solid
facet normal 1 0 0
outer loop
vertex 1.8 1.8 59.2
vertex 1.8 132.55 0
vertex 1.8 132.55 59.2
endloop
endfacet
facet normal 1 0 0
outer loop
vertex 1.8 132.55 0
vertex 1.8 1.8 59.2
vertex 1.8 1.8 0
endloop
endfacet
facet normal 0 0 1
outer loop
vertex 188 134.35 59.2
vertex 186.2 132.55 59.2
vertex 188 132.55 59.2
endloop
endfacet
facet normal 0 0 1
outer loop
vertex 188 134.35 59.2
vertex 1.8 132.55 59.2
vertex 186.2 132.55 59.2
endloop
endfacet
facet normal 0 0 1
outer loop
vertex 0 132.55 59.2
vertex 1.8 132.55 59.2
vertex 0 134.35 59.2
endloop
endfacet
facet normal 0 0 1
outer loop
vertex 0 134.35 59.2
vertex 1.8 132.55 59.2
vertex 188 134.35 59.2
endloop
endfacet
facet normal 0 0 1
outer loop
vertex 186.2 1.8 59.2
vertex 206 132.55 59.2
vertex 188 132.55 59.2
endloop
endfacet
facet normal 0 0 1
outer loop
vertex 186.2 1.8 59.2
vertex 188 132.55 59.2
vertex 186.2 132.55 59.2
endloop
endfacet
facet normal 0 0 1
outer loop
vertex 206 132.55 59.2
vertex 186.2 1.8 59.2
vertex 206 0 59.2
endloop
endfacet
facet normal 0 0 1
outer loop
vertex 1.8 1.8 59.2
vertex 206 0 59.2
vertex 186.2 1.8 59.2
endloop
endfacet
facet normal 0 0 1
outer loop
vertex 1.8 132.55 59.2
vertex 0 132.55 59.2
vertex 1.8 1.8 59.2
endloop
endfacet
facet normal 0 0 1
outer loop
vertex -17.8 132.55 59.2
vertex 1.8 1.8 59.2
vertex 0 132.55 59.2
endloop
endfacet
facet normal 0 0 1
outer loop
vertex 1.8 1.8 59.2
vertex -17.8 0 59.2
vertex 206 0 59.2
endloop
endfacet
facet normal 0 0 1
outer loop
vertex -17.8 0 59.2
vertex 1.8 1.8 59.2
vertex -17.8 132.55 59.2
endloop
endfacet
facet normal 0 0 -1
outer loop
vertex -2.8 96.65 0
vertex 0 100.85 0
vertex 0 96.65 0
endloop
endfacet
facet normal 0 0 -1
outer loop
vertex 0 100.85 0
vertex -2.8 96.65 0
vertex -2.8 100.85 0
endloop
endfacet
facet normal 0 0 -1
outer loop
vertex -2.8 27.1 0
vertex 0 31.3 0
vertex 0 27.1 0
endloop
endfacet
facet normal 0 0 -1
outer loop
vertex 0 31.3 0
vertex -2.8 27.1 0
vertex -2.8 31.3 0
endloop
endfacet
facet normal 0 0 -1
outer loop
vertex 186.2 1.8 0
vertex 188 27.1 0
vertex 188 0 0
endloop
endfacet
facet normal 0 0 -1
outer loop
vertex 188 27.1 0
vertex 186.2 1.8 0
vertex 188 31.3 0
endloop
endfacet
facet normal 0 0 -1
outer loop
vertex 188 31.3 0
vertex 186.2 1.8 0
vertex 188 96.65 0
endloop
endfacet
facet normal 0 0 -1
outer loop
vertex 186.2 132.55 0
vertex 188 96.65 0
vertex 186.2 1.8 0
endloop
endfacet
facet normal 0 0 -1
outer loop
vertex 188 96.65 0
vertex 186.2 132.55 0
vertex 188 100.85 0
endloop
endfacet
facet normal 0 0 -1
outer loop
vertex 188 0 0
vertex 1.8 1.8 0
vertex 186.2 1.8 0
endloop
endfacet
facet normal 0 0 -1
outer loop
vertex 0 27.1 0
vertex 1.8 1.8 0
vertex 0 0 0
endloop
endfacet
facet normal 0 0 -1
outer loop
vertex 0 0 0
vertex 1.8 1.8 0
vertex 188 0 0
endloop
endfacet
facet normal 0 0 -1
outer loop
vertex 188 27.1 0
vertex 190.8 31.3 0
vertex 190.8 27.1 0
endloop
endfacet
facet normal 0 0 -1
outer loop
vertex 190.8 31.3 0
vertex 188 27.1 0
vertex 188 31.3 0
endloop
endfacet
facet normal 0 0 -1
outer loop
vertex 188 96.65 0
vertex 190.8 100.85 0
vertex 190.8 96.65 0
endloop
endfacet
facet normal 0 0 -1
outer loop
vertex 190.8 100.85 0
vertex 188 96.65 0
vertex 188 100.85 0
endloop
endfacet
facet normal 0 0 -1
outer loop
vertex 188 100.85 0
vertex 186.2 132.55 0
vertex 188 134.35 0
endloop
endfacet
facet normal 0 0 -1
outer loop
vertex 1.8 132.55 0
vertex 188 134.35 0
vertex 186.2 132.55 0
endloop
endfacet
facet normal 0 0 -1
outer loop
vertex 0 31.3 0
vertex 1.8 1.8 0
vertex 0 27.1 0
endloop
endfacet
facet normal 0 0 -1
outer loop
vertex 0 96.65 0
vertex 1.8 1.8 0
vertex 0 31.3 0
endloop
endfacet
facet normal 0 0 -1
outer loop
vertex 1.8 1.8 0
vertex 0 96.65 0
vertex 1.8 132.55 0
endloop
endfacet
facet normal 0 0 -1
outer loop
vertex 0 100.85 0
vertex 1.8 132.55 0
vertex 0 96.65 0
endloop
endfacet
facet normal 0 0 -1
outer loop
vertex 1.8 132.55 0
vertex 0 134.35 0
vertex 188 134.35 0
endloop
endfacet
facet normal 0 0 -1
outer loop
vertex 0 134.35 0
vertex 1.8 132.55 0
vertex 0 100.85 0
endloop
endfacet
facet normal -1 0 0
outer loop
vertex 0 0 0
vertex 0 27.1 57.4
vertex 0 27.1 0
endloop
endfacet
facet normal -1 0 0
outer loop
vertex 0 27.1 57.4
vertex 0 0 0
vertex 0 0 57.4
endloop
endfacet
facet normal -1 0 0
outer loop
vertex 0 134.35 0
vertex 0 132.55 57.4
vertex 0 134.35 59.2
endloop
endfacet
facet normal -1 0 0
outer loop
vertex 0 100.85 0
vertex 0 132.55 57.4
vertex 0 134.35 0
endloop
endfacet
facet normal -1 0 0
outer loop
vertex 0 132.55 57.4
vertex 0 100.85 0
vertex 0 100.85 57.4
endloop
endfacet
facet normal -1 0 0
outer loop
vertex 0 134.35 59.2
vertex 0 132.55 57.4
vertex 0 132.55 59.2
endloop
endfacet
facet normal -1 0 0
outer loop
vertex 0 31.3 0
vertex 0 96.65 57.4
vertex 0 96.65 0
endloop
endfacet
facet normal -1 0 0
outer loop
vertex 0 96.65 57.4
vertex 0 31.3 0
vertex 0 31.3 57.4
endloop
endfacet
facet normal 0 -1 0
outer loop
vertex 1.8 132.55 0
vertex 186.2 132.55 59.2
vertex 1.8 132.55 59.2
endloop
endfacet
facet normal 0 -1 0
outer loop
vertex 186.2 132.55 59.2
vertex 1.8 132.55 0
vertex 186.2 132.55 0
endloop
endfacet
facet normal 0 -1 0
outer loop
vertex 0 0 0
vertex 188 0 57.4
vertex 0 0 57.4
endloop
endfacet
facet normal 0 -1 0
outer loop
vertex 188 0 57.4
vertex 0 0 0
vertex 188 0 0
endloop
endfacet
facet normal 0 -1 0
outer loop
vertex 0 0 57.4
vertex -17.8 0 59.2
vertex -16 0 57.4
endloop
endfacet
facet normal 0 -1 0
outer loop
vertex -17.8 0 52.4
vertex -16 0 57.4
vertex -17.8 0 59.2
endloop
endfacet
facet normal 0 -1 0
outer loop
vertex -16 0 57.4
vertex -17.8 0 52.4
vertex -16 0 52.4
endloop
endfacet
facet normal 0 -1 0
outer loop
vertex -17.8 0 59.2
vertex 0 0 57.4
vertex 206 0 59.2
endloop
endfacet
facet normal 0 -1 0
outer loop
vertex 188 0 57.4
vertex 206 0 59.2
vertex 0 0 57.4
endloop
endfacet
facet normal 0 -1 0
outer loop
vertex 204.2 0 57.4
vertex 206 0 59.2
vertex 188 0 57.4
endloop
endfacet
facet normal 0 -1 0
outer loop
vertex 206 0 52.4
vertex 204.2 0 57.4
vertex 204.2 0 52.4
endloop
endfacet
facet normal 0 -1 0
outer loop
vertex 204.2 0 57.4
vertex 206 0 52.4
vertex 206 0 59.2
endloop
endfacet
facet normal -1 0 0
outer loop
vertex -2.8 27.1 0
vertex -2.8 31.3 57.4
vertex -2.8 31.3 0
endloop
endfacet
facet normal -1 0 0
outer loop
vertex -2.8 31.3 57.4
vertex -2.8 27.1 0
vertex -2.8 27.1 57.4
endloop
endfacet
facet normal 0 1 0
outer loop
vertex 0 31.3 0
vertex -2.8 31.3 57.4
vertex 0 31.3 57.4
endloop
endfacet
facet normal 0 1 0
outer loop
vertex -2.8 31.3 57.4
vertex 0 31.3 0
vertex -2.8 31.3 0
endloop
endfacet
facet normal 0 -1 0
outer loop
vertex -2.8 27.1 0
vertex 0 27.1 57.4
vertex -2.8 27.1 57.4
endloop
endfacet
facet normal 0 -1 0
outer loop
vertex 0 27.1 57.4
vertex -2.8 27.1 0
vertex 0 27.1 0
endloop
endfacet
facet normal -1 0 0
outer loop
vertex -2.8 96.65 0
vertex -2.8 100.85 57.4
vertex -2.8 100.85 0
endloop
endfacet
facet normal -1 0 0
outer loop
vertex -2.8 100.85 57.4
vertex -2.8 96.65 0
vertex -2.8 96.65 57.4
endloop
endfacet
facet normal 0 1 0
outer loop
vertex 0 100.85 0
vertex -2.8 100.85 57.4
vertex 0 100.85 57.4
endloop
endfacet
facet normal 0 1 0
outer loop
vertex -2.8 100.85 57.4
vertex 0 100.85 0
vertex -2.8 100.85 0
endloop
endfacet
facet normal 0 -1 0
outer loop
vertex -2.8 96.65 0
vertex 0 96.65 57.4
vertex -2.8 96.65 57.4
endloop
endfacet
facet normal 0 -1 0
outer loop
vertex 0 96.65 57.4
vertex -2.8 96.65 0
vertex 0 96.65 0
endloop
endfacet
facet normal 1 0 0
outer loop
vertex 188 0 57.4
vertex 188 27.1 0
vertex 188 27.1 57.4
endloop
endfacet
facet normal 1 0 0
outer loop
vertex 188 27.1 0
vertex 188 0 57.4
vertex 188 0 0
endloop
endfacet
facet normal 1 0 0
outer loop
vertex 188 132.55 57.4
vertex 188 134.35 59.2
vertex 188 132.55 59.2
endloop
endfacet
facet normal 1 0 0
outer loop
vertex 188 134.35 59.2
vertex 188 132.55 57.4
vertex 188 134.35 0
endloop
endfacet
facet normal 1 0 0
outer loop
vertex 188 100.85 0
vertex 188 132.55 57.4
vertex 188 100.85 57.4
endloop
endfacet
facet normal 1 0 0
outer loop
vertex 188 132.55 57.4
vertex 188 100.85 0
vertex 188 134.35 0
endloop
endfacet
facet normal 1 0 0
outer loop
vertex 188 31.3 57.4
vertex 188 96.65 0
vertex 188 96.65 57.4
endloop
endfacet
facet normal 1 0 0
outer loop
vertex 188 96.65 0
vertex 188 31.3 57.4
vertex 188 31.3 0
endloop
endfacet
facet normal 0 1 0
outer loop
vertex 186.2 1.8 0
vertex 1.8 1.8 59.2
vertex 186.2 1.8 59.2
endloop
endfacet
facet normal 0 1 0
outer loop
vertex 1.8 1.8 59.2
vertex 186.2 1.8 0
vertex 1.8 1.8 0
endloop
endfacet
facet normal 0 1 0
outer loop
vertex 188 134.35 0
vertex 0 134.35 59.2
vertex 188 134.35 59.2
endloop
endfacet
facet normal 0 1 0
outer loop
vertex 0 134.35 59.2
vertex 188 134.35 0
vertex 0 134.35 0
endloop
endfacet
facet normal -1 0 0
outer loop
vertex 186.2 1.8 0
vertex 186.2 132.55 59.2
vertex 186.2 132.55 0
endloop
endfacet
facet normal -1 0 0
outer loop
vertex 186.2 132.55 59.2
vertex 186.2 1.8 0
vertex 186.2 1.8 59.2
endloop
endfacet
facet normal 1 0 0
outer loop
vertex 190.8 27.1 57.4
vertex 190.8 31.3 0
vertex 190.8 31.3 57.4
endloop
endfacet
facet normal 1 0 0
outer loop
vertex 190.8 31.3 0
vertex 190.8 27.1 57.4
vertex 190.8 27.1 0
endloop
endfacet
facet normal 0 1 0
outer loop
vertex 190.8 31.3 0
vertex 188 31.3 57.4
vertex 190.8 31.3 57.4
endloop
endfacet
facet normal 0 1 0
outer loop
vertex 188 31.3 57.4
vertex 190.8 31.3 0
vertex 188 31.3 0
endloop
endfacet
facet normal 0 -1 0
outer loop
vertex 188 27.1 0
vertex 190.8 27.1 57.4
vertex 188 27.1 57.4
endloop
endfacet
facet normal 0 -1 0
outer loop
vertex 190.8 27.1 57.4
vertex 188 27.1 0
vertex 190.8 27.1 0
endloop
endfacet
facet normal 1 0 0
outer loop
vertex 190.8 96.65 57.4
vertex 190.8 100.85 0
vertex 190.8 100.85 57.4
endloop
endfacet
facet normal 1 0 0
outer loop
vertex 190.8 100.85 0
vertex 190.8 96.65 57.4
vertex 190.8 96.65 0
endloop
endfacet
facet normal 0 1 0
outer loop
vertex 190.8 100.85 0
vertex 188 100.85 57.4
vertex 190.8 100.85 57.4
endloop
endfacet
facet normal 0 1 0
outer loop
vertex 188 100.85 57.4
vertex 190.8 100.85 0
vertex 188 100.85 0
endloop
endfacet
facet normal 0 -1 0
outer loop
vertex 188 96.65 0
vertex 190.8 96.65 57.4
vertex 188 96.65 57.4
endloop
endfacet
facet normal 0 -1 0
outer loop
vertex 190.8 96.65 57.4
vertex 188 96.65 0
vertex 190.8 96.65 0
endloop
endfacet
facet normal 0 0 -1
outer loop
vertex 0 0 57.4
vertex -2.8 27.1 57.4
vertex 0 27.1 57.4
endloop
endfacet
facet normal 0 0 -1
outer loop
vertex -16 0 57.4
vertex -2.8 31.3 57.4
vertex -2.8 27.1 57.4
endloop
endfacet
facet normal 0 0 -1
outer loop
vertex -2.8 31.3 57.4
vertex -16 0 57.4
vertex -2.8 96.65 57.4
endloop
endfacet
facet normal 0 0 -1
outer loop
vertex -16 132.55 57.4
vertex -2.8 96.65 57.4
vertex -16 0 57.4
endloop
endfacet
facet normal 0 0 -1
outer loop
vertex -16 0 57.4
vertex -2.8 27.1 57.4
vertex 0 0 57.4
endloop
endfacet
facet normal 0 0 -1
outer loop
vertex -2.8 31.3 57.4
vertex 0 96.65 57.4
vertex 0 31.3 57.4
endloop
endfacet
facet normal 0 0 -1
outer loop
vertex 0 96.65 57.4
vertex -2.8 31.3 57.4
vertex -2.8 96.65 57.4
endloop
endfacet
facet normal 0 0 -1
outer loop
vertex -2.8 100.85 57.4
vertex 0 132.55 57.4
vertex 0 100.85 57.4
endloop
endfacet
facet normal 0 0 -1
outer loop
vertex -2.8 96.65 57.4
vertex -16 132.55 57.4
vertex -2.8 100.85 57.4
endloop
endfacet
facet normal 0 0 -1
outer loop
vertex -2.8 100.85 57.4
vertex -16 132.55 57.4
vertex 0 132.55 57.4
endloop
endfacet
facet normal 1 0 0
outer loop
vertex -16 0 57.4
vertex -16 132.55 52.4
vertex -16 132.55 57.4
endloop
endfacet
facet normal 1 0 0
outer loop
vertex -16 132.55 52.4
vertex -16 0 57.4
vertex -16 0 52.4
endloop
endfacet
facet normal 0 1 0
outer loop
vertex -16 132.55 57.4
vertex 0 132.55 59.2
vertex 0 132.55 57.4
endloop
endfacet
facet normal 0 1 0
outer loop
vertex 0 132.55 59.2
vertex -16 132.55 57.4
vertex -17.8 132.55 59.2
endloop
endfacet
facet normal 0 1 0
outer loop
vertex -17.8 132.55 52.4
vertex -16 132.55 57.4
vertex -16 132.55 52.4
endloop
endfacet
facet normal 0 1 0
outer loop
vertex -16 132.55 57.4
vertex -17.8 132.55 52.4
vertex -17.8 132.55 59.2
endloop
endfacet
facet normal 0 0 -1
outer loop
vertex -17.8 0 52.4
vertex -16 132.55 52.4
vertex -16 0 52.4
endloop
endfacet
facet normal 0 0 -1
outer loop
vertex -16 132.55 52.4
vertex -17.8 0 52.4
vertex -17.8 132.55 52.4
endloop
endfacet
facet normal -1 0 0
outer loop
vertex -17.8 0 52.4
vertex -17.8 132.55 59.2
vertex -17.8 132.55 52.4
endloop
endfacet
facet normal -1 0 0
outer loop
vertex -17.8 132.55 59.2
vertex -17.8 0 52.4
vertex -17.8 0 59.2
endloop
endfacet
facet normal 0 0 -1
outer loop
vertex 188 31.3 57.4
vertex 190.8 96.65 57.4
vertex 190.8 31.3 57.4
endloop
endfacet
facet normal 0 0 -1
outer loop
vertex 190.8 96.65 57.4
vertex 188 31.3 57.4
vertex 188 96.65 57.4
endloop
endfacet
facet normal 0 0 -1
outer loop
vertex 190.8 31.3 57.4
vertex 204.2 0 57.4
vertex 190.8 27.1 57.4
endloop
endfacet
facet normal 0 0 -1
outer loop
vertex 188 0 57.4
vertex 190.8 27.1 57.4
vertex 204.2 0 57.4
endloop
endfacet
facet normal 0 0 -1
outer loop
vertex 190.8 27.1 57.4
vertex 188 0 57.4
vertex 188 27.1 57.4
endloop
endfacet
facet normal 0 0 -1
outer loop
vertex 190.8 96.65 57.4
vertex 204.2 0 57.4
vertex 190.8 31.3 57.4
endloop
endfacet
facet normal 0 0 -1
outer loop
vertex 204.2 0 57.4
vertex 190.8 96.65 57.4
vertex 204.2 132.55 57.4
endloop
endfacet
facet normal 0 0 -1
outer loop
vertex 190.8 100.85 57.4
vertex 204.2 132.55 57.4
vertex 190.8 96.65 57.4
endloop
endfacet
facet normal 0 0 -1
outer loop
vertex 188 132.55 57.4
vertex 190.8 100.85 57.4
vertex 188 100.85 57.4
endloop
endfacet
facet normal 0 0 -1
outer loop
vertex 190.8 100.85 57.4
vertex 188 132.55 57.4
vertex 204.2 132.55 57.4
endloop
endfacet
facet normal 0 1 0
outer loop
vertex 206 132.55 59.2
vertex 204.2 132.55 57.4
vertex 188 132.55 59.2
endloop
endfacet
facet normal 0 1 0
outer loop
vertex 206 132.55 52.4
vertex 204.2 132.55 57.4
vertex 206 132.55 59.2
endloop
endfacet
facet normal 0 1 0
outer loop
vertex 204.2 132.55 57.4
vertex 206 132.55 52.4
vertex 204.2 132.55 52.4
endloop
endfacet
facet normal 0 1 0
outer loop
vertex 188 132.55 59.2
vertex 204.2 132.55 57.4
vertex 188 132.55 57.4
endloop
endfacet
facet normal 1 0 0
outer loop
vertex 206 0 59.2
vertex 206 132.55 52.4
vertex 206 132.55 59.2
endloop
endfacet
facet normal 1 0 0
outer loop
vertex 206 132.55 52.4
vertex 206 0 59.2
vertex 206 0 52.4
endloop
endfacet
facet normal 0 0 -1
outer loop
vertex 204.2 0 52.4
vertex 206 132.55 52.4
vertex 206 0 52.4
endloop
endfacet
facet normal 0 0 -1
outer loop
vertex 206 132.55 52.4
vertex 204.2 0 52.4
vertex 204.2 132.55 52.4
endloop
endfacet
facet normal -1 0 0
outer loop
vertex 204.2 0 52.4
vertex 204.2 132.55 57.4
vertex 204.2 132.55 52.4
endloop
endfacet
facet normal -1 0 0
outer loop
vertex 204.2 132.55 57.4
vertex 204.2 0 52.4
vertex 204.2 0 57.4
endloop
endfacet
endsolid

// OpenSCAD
thickness = 1.8;

unit_height = 57.4+thickness;
unit_width = 188;

bar_width = 16;
bar_grip_height = 5;

groove_spacing = 65.16;

unit_depth = 27+4.39+groove_spacing+36;

groove_depth = 2.8;

cube([thickness, unit_depth, unit_height]);

translate([-groove_depth, 27.1, 0])
cube([groove_depth + thickness, 4.2, unit_height]);

translate([-groove_depth, 27+4.39+groove_spacing+.1, 0])
cube([groove_depth + thickness, 4.2, unit_height]);

cube([unit_width, thickness, unit_height]);

translate([0, unit_depth, 0])
cube([unit_width, thickness, unit_height]);

translate([unit_width-thickness, 0, 0])
cube([thickness, 27+4.39+groove_spacing+36, unit_height]);

translate([unit_width-thickness, 27.1, 0])
cube([groove_depth + thickness, 4.2, unit_height]);

translate([unit_width-thickness, 27+4.39+groove_spacing+.1, 0])
cube([groove_depth + thickness, 4.2, unit_height]);

color("cyan")
translate([-bar_width, 0, unit_height-thickness])
cube([bar_width+thickness, unit_depth, thickness]);

color("lime")
translate([-bar_width-thickness, 0, unit_height-bar_grip_height-thickness])
cube([thickness, unit_depth, bar_grip_height+thickness]);

color("blue")
translate([unit_width, 0, unit_height-thickness])
cube([bar_width+thickness, unit_depth, thickness]);

color("green")
translate([unit_width+bar_width+.2, 0, unit_height-bar_grip_height-thickness])
cube([thickness, unit_depth, bar_grip_height+thickness]);
